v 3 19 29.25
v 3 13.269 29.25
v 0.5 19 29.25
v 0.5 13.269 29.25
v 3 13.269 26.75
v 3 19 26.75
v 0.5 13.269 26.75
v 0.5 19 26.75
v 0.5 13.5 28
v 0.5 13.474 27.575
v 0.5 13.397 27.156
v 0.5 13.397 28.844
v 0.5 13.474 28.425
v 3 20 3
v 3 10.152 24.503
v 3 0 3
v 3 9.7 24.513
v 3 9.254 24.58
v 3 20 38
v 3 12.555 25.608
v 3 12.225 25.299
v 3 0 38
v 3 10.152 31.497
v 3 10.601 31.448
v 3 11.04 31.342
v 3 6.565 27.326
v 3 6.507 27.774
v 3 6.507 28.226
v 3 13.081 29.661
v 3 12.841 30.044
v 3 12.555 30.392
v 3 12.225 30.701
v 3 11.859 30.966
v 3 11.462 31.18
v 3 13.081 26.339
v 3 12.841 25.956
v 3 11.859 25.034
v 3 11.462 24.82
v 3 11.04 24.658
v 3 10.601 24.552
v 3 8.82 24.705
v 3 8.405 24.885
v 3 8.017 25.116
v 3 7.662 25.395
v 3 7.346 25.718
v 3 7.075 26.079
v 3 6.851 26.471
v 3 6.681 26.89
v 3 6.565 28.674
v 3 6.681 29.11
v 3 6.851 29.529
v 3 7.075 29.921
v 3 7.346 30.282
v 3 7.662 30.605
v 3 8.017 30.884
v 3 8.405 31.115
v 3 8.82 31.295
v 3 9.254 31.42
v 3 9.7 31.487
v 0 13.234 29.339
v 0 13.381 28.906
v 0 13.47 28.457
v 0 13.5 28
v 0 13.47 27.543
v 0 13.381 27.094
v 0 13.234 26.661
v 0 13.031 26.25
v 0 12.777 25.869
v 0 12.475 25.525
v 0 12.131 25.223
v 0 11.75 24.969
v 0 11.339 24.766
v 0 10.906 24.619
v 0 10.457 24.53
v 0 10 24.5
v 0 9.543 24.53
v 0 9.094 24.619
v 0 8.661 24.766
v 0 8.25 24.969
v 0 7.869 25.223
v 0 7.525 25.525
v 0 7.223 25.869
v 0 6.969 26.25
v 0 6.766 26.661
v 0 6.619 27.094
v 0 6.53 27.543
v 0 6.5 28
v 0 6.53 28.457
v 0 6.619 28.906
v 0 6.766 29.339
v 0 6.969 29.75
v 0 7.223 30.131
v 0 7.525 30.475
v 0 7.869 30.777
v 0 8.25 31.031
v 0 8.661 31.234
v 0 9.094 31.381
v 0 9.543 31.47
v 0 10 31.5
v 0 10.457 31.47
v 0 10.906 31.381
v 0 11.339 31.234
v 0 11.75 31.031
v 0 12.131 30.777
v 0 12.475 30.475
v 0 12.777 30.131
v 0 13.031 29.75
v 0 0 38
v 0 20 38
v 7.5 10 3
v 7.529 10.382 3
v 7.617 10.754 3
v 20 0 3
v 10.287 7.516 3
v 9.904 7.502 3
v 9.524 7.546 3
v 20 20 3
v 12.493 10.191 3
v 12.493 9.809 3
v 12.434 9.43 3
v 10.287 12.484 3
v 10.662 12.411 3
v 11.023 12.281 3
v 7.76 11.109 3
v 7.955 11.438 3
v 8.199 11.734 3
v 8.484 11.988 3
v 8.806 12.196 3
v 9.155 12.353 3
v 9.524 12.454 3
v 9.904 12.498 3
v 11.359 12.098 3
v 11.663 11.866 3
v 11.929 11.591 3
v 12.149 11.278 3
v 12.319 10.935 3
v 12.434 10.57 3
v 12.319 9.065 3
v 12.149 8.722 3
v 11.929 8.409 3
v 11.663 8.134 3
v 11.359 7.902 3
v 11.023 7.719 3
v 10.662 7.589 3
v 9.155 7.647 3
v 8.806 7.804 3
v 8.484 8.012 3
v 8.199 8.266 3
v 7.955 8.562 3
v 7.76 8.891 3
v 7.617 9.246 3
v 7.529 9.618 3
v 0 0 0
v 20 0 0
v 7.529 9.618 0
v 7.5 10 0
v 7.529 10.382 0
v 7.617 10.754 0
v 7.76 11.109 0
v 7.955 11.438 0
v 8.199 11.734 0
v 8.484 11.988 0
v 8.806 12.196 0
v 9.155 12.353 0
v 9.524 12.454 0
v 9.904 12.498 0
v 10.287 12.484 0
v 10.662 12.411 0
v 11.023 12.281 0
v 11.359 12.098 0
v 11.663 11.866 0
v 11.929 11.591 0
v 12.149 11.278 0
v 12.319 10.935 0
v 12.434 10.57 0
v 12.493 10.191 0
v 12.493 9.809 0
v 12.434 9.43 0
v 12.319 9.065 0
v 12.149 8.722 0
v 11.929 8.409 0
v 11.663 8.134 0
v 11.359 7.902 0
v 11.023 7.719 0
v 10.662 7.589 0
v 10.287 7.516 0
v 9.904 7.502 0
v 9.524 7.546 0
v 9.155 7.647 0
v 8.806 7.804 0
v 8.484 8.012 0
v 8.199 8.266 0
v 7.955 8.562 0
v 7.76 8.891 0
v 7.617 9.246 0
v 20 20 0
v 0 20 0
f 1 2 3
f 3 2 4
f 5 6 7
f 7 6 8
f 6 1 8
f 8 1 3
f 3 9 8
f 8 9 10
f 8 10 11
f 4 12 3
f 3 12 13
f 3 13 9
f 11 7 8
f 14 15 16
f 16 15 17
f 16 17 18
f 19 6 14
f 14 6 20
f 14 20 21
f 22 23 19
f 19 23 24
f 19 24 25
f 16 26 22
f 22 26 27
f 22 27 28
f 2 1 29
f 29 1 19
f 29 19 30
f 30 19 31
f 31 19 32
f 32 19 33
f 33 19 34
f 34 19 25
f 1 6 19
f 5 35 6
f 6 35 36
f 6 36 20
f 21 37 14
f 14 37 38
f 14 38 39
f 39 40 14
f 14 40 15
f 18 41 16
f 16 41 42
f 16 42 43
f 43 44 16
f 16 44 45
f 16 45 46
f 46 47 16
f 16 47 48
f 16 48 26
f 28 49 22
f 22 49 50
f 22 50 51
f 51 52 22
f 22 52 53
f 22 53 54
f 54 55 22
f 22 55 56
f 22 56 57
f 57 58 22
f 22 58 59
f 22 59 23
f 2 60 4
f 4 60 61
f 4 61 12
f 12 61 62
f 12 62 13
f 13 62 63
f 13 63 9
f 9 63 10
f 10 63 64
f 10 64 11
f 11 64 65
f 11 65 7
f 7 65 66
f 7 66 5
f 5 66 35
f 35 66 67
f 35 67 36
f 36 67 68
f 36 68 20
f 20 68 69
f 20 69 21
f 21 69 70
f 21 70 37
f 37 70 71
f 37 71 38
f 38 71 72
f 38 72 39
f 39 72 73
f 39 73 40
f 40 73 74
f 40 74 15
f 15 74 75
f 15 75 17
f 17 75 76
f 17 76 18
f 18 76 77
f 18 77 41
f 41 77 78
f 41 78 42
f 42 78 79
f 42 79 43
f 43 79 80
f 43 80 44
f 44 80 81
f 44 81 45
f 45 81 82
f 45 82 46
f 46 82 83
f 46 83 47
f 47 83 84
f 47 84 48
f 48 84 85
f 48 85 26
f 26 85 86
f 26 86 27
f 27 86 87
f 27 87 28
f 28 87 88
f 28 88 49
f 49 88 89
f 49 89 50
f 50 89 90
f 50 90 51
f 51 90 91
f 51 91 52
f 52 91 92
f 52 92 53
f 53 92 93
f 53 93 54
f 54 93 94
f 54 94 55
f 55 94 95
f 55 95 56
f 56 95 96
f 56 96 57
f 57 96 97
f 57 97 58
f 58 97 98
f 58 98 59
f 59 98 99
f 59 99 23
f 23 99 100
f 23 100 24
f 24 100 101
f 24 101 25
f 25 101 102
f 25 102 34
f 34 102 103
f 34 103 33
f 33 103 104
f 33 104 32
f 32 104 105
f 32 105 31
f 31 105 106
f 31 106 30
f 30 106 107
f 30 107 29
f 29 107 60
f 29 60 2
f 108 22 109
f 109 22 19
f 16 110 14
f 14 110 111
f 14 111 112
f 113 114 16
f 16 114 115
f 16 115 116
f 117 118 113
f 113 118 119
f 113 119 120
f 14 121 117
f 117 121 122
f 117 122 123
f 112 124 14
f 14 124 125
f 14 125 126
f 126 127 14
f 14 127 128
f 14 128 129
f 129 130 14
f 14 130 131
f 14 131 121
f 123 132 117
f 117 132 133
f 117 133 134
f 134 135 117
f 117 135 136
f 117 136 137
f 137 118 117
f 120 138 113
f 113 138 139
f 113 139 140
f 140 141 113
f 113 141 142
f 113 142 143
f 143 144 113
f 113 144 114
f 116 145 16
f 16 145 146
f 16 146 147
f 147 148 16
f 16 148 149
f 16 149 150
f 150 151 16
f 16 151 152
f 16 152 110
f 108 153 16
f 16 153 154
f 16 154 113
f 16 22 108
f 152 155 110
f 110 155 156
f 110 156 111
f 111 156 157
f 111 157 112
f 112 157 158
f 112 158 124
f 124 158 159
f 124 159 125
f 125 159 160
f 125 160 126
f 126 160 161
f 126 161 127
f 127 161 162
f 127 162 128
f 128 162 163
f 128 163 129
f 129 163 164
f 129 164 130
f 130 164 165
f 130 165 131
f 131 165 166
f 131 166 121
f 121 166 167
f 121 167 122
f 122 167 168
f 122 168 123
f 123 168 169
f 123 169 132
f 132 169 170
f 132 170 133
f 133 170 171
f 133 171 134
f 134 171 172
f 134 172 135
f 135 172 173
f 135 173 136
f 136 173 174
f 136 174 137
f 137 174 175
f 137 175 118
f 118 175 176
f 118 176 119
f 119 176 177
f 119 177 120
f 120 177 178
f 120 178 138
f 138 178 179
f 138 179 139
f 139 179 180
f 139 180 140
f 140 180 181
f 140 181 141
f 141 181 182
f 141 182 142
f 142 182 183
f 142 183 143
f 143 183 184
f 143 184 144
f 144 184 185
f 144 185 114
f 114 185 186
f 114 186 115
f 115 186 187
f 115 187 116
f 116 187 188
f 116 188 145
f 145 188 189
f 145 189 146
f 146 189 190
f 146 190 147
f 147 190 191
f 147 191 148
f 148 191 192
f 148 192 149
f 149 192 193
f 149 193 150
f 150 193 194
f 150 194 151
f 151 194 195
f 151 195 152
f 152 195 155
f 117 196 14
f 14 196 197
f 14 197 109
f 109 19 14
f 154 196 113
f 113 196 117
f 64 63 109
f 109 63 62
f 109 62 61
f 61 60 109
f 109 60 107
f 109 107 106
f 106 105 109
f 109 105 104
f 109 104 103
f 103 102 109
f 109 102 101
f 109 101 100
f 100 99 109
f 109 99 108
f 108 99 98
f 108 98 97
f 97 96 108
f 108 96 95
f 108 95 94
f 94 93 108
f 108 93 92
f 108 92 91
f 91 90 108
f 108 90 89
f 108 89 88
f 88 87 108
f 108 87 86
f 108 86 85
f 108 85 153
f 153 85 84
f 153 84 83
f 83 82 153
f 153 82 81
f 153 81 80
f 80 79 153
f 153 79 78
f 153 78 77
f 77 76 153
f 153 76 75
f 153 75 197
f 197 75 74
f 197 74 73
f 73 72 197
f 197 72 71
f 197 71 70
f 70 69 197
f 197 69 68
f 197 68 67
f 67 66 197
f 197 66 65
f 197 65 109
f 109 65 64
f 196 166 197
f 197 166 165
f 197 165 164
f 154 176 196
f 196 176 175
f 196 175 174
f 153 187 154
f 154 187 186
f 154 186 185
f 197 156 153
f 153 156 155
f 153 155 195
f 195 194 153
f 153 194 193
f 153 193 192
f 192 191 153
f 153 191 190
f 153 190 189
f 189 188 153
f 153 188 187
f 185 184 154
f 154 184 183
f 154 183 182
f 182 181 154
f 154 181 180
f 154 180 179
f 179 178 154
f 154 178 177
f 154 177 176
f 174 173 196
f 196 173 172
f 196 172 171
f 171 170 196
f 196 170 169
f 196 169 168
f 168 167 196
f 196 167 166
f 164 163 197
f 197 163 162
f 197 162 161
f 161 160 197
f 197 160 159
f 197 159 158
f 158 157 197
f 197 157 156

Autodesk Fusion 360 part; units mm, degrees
sketch "Sketch1" plane through (0, 0, 0) normal (0, 0, 1) x (1, 0, 0)
  line L0 (0, 0) -> (20, 0)
  line L1 (20, 0) -> (20, 20)
  line L2 (20, 20) -> (0, 20)
  line L3 (0, 20) -> (0, 0)
  line L4 (0, 0) -> (3, 0)
  line L5 (3, 0) -> (3, 20)
  line L6 (3, 20) -> (0, 20)
  line L7 (0, 20) -> (0, 0)
  line L8 (10, 0) -> (10, 20) construction
  circle A0 centre (10, 10) radius 2.5
  dimension "d7" = 20
  dimension "d8" = 20
  dimension "d9" = 3
  dimension "d10" = 20
  dimension "d12" = 5
extrude "Extrude1" add sketch "Sketch1" along normal blind 3
extrude "Extrude2" add sketch "Sketch1" along normal blind 38 contours L0 L2 L3 L4 L5 L6 L7
sketch "Sketch2" plane through (0, 0, 0) normal (-1, 0, 0) x (0, -1, 0)
  line L0 (-20, 0) -> (0, 0)
  line L1 (0, 0) -> (0, 38)
  line L2 (0, 38) -> (-20, 38)
  line L3 (-20, 38) -> (-20, 0)
  line L4 (-20, 38) -> (0, 18) construction
  line L5 (-20, 38) -> (8.2843, 38) construction
  line L6 (-10, 38) -> (-10, 0) construction
  circle A0 centre (-10, 28) radius 3.5
  dimension "d17" = 45
  dimension "d18" = 7
extrude "Extrude3" cut sketch "Sketch2" against normal up to surface (3 mm away) contours A0
sketch "Sketch3" plane through (3, 0, 0) normal (1, 0, 0) x (0, 1, 0)
  circle A0 centre (10, 28) radius 3.5
  line L0 (0, 3) -> (20, 3)
  line L1 (20, 3) -> (20, 38)
  line L2 (20, 38) -> (0, 38)
  line L3 (0, 38) -> (0, 3)
  line L4 (10, 28) -> (10, 29.25)
  line L5 (10, 29.25) -> (19, 29.25)
  line L6 (19, 29.25) -> (19, 26.75)
  line L7 (19, 26.75) -> (10, 26.75)
  line L8 (10, 26.75) -> (10, 29.25)
  dimension "d21" = 1.25
  dimension "d23" = 9
  dimension "d24" = 2.5
extrude "Extrude4" cut sketch "Sketch3" against normal blind 2.5 contours A0 L5 L6 L7
equation "pot_hole_diameter = 7 mm"
equation "pot_turn_stop_slot_depth = 2.5 mm"
equation "pot_turn_stop_slot_width = 2.5 mm"
equation "thickness = 3 mm"
equation "mount_width = 20 mm"
equation "mount_height = 35 mm"
equation "d7 = mount_width"
equation "d8 = mount_width"
equation "d9 = thickness"
equation "d10 = mount_width"
equation "screw_hole_diameter = 5 mm"
equation "d12 = screw_hole_diameter"
equation "d13 = thickness"
equation "d15 = thickness + mount_height"
equation "d18 = pot_hole_diameter"
equation "d21 = pot_turn_stop_slot_width / 2"
equation "pot_slot_length = 9 mm"
equation "d23 = pot_slot_length"
equation "d24 = pot_turn_stop_slot_width"
equation "d25 = -pot_turn_stop_slot_depth"
